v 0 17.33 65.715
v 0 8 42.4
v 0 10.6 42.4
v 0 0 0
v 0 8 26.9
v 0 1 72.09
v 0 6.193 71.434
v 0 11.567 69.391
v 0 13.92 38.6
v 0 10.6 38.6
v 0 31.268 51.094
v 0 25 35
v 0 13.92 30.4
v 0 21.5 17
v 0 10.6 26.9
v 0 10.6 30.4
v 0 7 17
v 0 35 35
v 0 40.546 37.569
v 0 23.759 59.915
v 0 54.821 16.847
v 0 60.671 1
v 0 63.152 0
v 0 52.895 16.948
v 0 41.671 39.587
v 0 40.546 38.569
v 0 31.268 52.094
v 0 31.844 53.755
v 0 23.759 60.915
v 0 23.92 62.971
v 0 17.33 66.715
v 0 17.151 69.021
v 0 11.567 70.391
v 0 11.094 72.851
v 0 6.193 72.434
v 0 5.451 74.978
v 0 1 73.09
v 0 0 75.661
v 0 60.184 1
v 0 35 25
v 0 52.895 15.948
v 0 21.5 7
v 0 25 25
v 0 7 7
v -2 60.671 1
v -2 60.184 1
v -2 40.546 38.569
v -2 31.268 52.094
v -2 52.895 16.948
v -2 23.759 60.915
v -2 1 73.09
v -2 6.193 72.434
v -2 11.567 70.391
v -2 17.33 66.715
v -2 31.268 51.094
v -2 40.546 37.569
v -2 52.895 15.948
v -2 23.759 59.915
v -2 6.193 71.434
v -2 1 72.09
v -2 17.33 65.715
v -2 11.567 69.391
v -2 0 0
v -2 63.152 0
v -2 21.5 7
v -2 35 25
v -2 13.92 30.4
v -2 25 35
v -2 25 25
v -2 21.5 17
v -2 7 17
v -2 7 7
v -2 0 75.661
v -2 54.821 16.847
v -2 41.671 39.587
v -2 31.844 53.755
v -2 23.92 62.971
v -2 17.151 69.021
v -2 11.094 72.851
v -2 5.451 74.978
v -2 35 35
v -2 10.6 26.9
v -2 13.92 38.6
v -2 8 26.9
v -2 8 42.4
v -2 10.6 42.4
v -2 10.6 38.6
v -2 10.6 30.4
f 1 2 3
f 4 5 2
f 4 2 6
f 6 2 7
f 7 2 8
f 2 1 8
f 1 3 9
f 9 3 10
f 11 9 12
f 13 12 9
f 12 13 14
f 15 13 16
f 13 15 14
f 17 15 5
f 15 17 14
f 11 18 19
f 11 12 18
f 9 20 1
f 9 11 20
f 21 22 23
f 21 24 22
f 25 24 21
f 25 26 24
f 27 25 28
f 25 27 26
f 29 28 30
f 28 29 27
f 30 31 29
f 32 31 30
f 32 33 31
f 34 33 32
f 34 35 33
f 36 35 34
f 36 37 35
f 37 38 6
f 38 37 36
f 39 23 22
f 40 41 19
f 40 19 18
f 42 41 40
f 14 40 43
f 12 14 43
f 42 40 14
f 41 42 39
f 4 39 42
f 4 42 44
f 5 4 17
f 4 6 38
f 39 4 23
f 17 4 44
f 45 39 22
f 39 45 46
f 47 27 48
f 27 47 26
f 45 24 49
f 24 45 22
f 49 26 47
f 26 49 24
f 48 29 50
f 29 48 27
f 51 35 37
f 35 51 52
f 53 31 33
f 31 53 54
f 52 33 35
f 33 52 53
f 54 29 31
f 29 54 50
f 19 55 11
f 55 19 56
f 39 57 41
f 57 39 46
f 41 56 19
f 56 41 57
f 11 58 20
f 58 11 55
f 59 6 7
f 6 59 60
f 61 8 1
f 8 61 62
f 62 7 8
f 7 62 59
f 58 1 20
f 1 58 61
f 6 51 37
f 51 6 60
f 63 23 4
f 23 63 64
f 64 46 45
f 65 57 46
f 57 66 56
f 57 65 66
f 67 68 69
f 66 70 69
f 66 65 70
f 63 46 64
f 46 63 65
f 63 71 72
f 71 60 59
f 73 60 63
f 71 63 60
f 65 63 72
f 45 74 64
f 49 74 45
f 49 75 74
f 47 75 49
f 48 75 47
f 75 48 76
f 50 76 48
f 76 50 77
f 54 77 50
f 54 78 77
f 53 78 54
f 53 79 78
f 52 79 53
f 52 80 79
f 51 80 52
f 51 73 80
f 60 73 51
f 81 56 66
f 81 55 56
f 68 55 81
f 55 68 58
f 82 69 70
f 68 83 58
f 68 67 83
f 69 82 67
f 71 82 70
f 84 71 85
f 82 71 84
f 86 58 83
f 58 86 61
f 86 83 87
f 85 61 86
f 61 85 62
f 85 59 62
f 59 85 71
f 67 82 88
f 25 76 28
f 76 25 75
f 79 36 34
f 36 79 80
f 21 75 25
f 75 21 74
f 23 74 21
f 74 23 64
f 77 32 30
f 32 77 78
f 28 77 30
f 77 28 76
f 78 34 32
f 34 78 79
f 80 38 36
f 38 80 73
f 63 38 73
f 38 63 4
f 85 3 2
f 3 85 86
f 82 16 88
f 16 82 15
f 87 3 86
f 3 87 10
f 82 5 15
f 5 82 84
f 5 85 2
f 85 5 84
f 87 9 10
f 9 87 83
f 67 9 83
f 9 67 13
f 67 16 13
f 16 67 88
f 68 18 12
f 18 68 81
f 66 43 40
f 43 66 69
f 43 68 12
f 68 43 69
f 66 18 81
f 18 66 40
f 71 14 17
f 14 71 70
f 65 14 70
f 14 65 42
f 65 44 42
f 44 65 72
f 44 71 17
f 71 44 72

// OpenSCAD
// file: ../../lightning-bolt.scad
// Module names are of the form poly_<inkscape-path-id>().  As a result,
// you can associate a polygon in this OpenSCAD program with the corresponding
// SVG element in the Inkscape document by looking for the XML element with
// the attribute id="inkscape-path-id".

// fudge value is used to ensure that subtracted solids are a tad taller
// in the z dimension than the polygon being subtracted from.  This helps
// keep the resulting .stl file manifold.
fudge = 0.1;

module poly_Selection(h)
{
  scale([25.4/90, -25.4/90, 1]) union()
  {
    difference()
    {
       linear_extrude(height=h)
         polygon([[-4.148906,-161.604375],[29.851094,-161.604375],[89.851094,-161.604375],[93.388594,-161.765625],[96.851094,-161.604375],[99.052539,-160.861992],[100.810781,-159.788437],[102.146680,-158.426602],[103.081094,-156.819375],[103.634883,-155.009648],[103.828906,-153.040312],[103.684023,-150.954258],[103.221094,-148.794375],[102.277969,-146.302969],[100.798594,-143.351250],[96.816094,-136.696875],[88.851094,-124.794375],[55.521094,-74.794375],[52.930781,-71.123125],[49.723594,-66.176875],[48.375586,-63.594766],[47.457656,-61.136875],[47.164570,-58.950859],[47.691094,-57.184375],[49.468281,-55.523281],[51.843594,-54.455625],[56.851094,-53.384375],[81.851094,-52.794375],[85.930117,-52.456934],[89.547656,-51.555469],[92.689414,-50.098770],[95.341094,-48.095625],[97.488398,-45.554824],[99.117031,-42.485156],[100.212695,-38.895410],[100.761094,-34.794375],[100.747676,-30.961406],[100.226250,-27.654375],[99.240059,-24.763594],[97.832344,-22.179375],[96.046348,-19.792031],[93.925313,-17.491875],[88.851094,-12.714375],[60.861094,11.495625],[22.681094,53.165625],[-2.148906,76.215625],[-46.148906,121.205625],[-78.148906,152.375625],[-81.104219,155.211094],[-84.541406,158.319375],[-88.282344,160.803281],[-90.211055,161.530723],[-92.148906,161.765625],[-94.372402,161.407539],[-95.966250,160.530312],[-97.010488,159.238242],[-97.585156,157.635625],[-97.770293,155.826758],[-97.645937,153.915937],[-96.788906,150.205625],[-93.919844,142.465000],[-90.396406,134.510625],[-82.908906,119.205625],[-44.898906,43.205625],[-36.378906,25.205625],[-35.345781,22.782813],[-34.608906,20.343125],[-34.494531,17.862187],[-35.328906,15.315625],[-36.170610,14.127329],[-37.254570,13.148945],[-40.029844,11.748437],[-43.415898,10.967148],[-47.173906,10.658125],[-54.850469,10.869062],[-61.148906,11.205625],[-84.148906,11.205625],[-89.537187,11.162031],[-95.852656,10.511875],[-98.777129,9.708848],[-101.236250,8.453594],[-102.997637,6.645918],[-103.544060,5.503611],[-103.828906,4.185625],[-103.551094,0.976250],[-102.416406,-2.454375],[-99.458906,-8.794375],[-87.568906,-34.794375],[-45.288906,-129.794375],[-36.368906,-149.794375],[-33.801406,-154.788125],[-32.116406,-157.068906],[-30.048906,-158.784375],[-27.055781,-159.877500],[-23.293906,-160.479375],[-16.148906,-160.794375],[-10.167656,-160.861875],[-4.148906,-161.604375]]);
       translate([0, 0, -fudge])
         linear_extrude(height=h+2*fudge)
           polygon([[-2.148906,-144.654375],[-11.515156,-143.585625],[-16.058125,-142.526719],[-18.163730,-141.618809],[-20.108906,-140.364375],[-22.284258,-138.120078],[-24.525469,-134.897500],[-28.966406,-126.644375],[-32.953594,-117.858750],[-36.008906,-110.794375],[-65.008906,-46.794375],[-77.008906,-20.794375],[-77.717656,-18.100625],[-78.111406,-14.919375],[-77.953906,-11.783125],[-77.594609,-10.398281],[-77.008906,-9.224375],[-75.949375,-8.181387],[-74.555156,-7.474844],[-71.118906,-6.800625],[-64.148906,-6.514375],[-25.148906,-5.794375],[-20.262344,-5.639844],[-17.686992,-5.320645],[-15.208906,-4.723125],[-12.967070,-3.759512],[-11.100469,-2.342031],[-9.748086,-0.382910],[-9.048906,2.205625],[-9.148008,3.888379],[-9.686094,6.060156],[-11.633906,11.216875],[-15.898906,20.205625],[-36.368906,61.205625],[-43.578906,78.205625],[-43.665156,80.649063],[-43.016406,82.798125],[-42.384766,83.660898],[-41.531406,84.328437],[-40.443672,84.760195],[-39.108906,84.915625],[-36.457187,84.283281],[-33.772656,82.729375],[-29.148906,78.915625],[-9.148906,59.205625],[54.851094,-4.794375],[69.851094,-20.794375],[73.011094,-24.875625],[74.145781,-27.247656],[74.401094,-29.684375],[74.109907,-30.624995],[73.529883,-31.442773],[71.644531,-32.745312],[69.027461,-33.663008],[65.961094,-34.266875],[59.610156,-34.817188],[54.851094,-34.964375],[26.851094,-34.964375],[24.944707,-35.570820],[23.266250,-36.420312],[21.835527,-37.498086],[20.672344,-38.789375],[19.796504,-40.279414],[19.227813,-41.953437],[18.986074,-43.796680],[19.091094,-45.794375],[19.653008,-47.792656],[20.785156,-50.341250],[24.138594,-56.346875],[30.851094,-66.794375],[56.801094,-107.794375],[71.091094,-131.794375],[72.260937,-134.232188],[73.242344,-137.009375],[73.438125,-139.779062],[73.054785,-141.052695],[72.251094,-142.194375],[71.029297,-142.931309],[69.104844,-143.516719],[64.008594,-144.290625],[58.683594,-144.631406],[54.851094,-144.654375],[-2.148906,-144.654375]]);
    }
  }
}

module lightningBolt(height = 1,
                     showBackground = false)
{
    scaleFactor = 0.35;
    scale([scaleFactor, 
          scaleFactor + 0.0, 
           1])
    poly_Selection(height);

    if(showBackground)
    {
        color("green")
        cube([20.6, 32, height], center = true);
    }    
}
// file: ../../O.scad
// Module names are of the form poly_<inkscape-path-id>().  As a result,
// you can associate a polygon in this OpenSCAD program with the corresponding
// SVG element in the Inkscape document by looking for the XML element with
// the attribute id="inkscape-path-id".

// fudge value is used to ensure that subtracted solids are a tad taller
// in the z dimension than the polygon being subtracted from.  This helps
// keep the resulting .stl file manifold.
fudge = 0.1;

module poly_Selection(h)
{
  scale([25.4/90, -25.4/90, 1]) union()
  {
    difference()
    {
       linear_extrude(height=h)
         polygon([[-5.844834,-69.112233],[-0.738835,-69.479330],[4.212842,-69.319479],[8.996970,-68.659091],[13.600322,-67.524576],[18.009670,-65.942347],[22.211787,-63.938815],[26.193445,-61.540389],[29.941416,-58.773483],[33.442473,-55.664506],[36.683389,-52.239869],[39.650935,-48.525985],[42.331885,-44.549264],[44.713010,-40.336117],[46.781084,-35.912955],[48.522878,-31.306190],[49.925166,-26.542233],[51.431885,-20.040983],[52.821416,-12.587233],[53.740322,-5.110983],[53.835166,1.457767],[53.077295,9.616439],[51.953447,17.577767],[50.332021,25.297220],[48.081416,32.730267],[45.070029,39.832377],[41.166260,46.559017],[36.238506,52.865658],[33.349509,55.847562],[30.155166,58.707767],[24.473916,63.186517],[21.457510,65.101986],[18.155166,66.697767],[12.715166,68.386205],[7.297666,69.217767],[1.808916,69.479330],[-3.844834,69.457767],[-7.048369,69.233744],[-10.537490,68.661205],[-17.868584,66.617767],[-24.830303,63.621830],[-27.857705,61.858666],[-30.414834,59.967767],[-33.333330,57.119623],[-36.231553,53.639486],[-39.042354,49.687552],[-41.698584,45.424017],[-46.278740,36.602924],[-49.434834,28.457767],[-51.859893,18.885170],[-53.340303,9.094486],[-53.835166,-0.794869],[-53.303584,-10.663483],[-51.704658,-20.391940],[-48.997490,-29.860826],[-47.215535,-34.460614],[-45.141182,-38.950729],[-42.769319,-43.316244],[-40.094834,-47.542233],[-36.123740,-52.805670],[-31.598584,-57.609733],[-26.509053,-61.787545],[-20.844834,-65.172233],[-17.163740,-66.690670],[-13.491084,-67.727233],[-5.844834,-69.112233]]);
       translate([0, 0, -fudge])
         linear_extrude(height=h+2*fudge)
           polygon([[-5.934834,-61.092233],[-9.446100,-60.339632],[-12.775825,-59.318771],[-18.899951,-56.525162],[-24.325815,-52.817198],[-29.072021,-48.300670],[-33.157173,-43.081368],[-36.599873,-37.265084],[-39.418726,-30.957609],[-41.632334,-24.264733],[-43.259302,-17.292247],[-44.318232,-10.145944],[-44.827729,-2.931613],[-44.806396,4.244955],[-44.272837,11.277968],[-43.245654,18.061635],[-41.743452,24.490165],[-39.784834,30.457767],[-37.048818,36.790424],[-33.822959,42.630892],[-30.065537,47.874174],[-25.734834,52.415267],[-20.789131,56.149174],[-15.186709,58.970892],[-12.126191,60.006869],[-8.885850,60.775424],[-5.460469,61.263431],[-1.844834,61.457767],[2.370159,61.351688],[6.336201,60.937728],[10.062390,60.224178],[13.557822,59.219330],[16.831594,57.931473],[19.892803,56.368900],[22.750544,54.539901],[25.413916,52.452767],[30.193936,47.537260],[34.305635,41.688705],[37.821787,34.973431],[40.815166,27.457767],[42.547073,21.639213],[43.836670,15.417767],[44.669148,8.887885],[45.029697,2.144017],[44.903508,-4.719381],[44.275771,-11.607858],[43.131677,-18.426959],[41.456416,-25.082233],[39.235178,-31.479225],[36.453154,-37.523483],[33.095535,-43.120553],[29.147510,-48.175983],[24.594270,-52.595319],[19.421006,-56.284108],[13.612908,-59.147897],[7.155166,-61.092233],[4.052354,-61.457858],[0.662666,-61.504733],[-5.934834,-61.092233]]);
    }
  }
}

module O(height = 1, showBackground = false)
{
    scaleFactor = 0.82;
    scale([scaleFactor, 
          scaleFactor + 0.02, 
           1])
    poly_Selection(height);

    if(showBackground)
    {
        color("green")
        cube([25, 33, height], center = true);
    }    
}
// file: ../../I.scad
module I(height = 3, showBackground = false)
{
    cube([3, 30, height], center = true);

    if(showBackground)
    {
        color("green")
        cube([3, 30, 1], center = true);
    }
}
// file: ../../G.scad
// Module names are of the form poly_<inkscape-path-id>().  As a result,
// you can associate a polygon in this OpenSCAD program with the corresponding
// SVG element in the Inkscape document by looking for the XML element with
// the attribute id="inkscape-path-id".

// fudge value is used to ensure that subtracted solids are a tad taller
// in the z dimension than the polygon being subtracted from.  This helps
// keep the resulting .stl file manifold.
fudge = 0.1;

module poly_Selection(h)
{
  scale([25.4/90, -25.4/90, 1]) union()
  {
    linear_extrude(height=h)
      polygon([[10.951875,1.338643],[53.951875,1.338643],[57.923281,1.739268],[59.154121,2.231611],[59.983125,2.976143],[60.486348,4.015986],[60.739844,5.394268],[60.801875,9.338643],[60.801875,35.338643],[60.948125,38.736143],[60.801875,42.058643],[59.783262,44.373174],[58.236719,46.904268],[54.065625,52.151143],[49.300156,56.869268],[44.951875,60.128643],[30.951875,66.568643],[26.615156,68.524736],[22.733125,70.007393],[18.710469,70.963174],[13.951875,71.338643],[6.211973,71.338447],[-0.916094,71.050205],[-7.561113,70.334932],[-13.851875,69.053643],[-19.917168,67.067354],[-25.885781,64.237080],[-31.886504,60.423838],[-38.048125,55.488643],[-41.478125,52.521143],[-44.668125,49.298643],[-48.164844,44.410518],[-51.236875,38.836143],[-53.849531,33.003018],[-55.968125,27.338643],[-57.492969,21.081611],[-59.174375,11.797393],[-60.497656,2.533799],[-60.948125,-3.661357],[-60.357676,-10.182725],[-59.158906,-16.957920],[-57.366934,-23.816084],[-54.996875,-30.586357],[-52.063848,-37.097881],[-48.582969,-43.179795],[-44.569355,-48.661240],[-40.038125,-53.371357],[-35.962773,-56.714016],[-31.604531,-59.741221],[-26.997617,-62.442439],[-22.176250,-64.807139],[-17.174648,-66.824788],[-12.027031,-68.484854],[-6.767617,-69.776804],[-1.430625,-70.690107],[3.949727,-71.214231],[9.339219,-71.338643],[14.703633,-71.052810],[20.008750,-70.346201],[25.220352,-69.208284],[30.304219,-67.628525],[35.226133,-65.596394],[39.951875,-63.101357],[45.734375,-59.543857],[50.459375,-55.948857],[52.520234,-53.904092],[54.430625,-51.570107],[56.228516,-48.853623],[57.951875,-45.661357],[54.090625,-43.623857],[51.951406,-42.820732],[50.041875,-42.651357],[49.003926,-42.987490],[48.004531,-43.617295],[46.118125,-45.466357],[42.771875,-49.481357],[40.214844,-51.641357],[37.180625,-53.673857],[30.951875,-56.951357],[27.252129,-58.449600],[23.777031,-59.539795],[17.165625,-60.723857],[10.447344,-60.959170],[2.951875,-60.701357],[-5.044375,-60.340107],[-8.575156,-59.679014],[-13.048125,-58.201357],[-18.547187,-55.967451],[-23.980625,-53.342607],[-29.087813,-50.187139],[-33.608125,-46.361357],[-36.288733,-43.421499],[-38.703457,-40.332959],[-42.767656,-33.761045],[-45.865527,-26.748037],[-48.061875,-19.396357],[-49.421504,-11.808428],[-50.009219,-4.086670],[-49.889824,3.666494],[-49.128125,11.348643],[-47.870469,19.322861],[-46.281875,25.649893],[-43.768906,31.678799],[-39.738125,38.758643],[-37.801875,42.329893],[-36.811719,43.920986],[-35.198125,45.878643],[-30.107051,50.708896],[-24.792031,54.432549],[-19.250371,57.188936],[-13.479375,59.117393],[-7.476348,60.357256],[-1.238594,61.047861],[5.236582,61.328545],[11.951875,61.338643],[16.493691,61.092568],[20.902031,60.463174],[25.166230,59.444951],[29.275625,58.032393],[33.219551,56.219990],[36.987344,54.002236],[40.568340,51.373623],[43.951875,48.328643],[46.745625,45.482080],[48.571875,43.046143],[49.588125,40.253955],[49.951875,36.338643],[50.129531,31.032861],[50.165625,23.922393],[49.960957,20.366279],[49.517344,17.170049],[48.766934,14.604053],[47.641875,12.938643],[45.724375,11.892705],[43.491875,11.433643],[38.951875,11.338643],[10.951875,11.338643],[10.951875,1.338643]]);
  }
}

module G(height = 1,
         showBackground = false)
{
    scaleFactor = 0.698;
    scale([scaleFactor, scaleFactor + 0.042, 1])
    poly_Selection(height);

    if(showBackground)
    {
        color("green")
        cube([24.1, 30, height], center = true);
    }    
}
// file: ../../E.scad
// Module names are of the form poly_<inkscape-path-id>().  As a result,
// you can associate a polygon in this OpenSCAD program with the corresponding
// SVG element in the Inkscape document by looking for the XML element with
// the attribute id="inkscape-path-id".

// fudge value is used to ensure that subtracted solids are a tad taller
// in the z dimension than the polygon being subtracted from.  This helps
// keep the resulting .stl file manifold.
fudge = 0.1;

module poly_Selection(h)
{
  scale([25.4/90, -25.4/90, 1]) union()
  {
    linear_extrude(height=h)
      polygon([[-55.000000,-70.000000],[55.000000,-70.000000],[55.000000,-60.000000],[-43.000000,-60.000000],[-43.000000,-9.000000],[38.000000,-9.000000],[37.985000,-4.623750],[37.696250,-2.316094],[36.980000,-0.600000],[35.692461,0.200879],[33.523438,0.725781],[27.612500,1.156250],[17.000000,1.000000],[-43.000000,1.000000],[-43.000000,52.000000],[-42.823379,54.683281],[-42.389531,56.686875],[-41.673730,58.110156],[-40.651250,59.052500],[-39.297363,59.613281],[-37.587344,59.891875],[-33.000000,60.000000],[55.000000,60.000000],[55.000000,70.000000],[-55.000000,70.000000],[-55.000000,-70.000000]]);
  }
}

module E(height = 1)
{
    scaleFactor = 0.6456;
    scale([scaleFactor, scaleFactor + 0.107, 1])
    poly_Selection(height);

    if(showBackground)
    {
        color("green")
        cube([20.2, 30, height], center = true);
    }    
}

//E(1);
// file: ../../D.scad
// Module names are of the form poly_<inkscape-path-id>().  As a result,
// you can associate a polygon in this OpenSCAD program with the corresponding
// SVG element in the Inkscape document by looking for the XML element with
// the attribute id="inkscape-path-id".

// fudge value is used to ensure that subtracted solids are a tad taller
// in the z dimension than the polygon being subtracted from.  This helps
// keep the resulting .stl file manifold.
fudge = 0.1;

module poly_Selection(h)
{
  scale([25.4/90, -25.4/90, 1]) union()
  {
    difference()
    {
       linear_extrude(height=h)
         polygon([[-138.674375,-159.195000],[-112.964375,-159.975000],[-68.964375,-159.975000],[1.035625,-159.975000],[12.791719,-159.185625],[27.801875,-157.185000],[42.678906,-154.479375],[49.009004,-153.020391],[54.035625,-151.575000],[59.267969,-149.587949],[64.338125,-147.232344],[69.258281,-144.561504],[74.040625,-141.628750],[83.240625,-135.190781],[92.035625,-128.345000],[95.488125,-125.778750],[98.865625,-122.875000],[106.825625,-112.975000],[120.515625,-93.975000],[124.806563,-85.673164],[128.728125,-76.535313],[132.218437,-66.790430],[135.215625,-56.667500],[137.657812,-46.395508],[139.483125,-36.203438],[140.629687,-26.320273],[141.035625,-16.975000],[141.035625,18.025000],[140.242500,27.404531],[138.425625,40.081250],[136.181250,52.729844],[134.105625,62.025000],[131.712031,68.633906],[127.564375,78.716250],[123.174844,88.702969],[120.055625,95.025000],[109.035625,110.025000],[105.698906,114.950000],[102.824375,119.935000],[100.022969,124.515000],[96.905625,128.225000],[92.232500,132.096406],[85.853125,136.831250],[79.282500,141.200469],[74.035625,143.975000],[65.035625,145.865000],[58.035625,149.265000],[42.035625,153.855000],[32.035625,155.305000],[21.599531,156.641250],[13.129375,157.467500],[4.612344,157.892500],[-5.964375,158.025000],[-22.964375,159.025000],[-71.964375,159.025000],[-83.964375,159.975000],[-101.964375,159.975000],[-116.964375,159.025000],[-133.964375,159.025000],[-137.179375,158.847500],[-138.714688,158.386562],[-139.944375,157.425000],[-140.631094,155.877813],[-140.923125,153.875000],[-140.964375,150.025000],[-140.964375,-81.975000],[-140.964375,-138.975000],[-141.035625,-148.698750],[-140.884219,-154.273594],[-140.394375,-157.545000],[-139.433125,-158.760000],[-138.674375,-159.195000]]);
       translate([0, 0, -fudge])
         linear_extrude(height=h+2*fudge)
           polygon([[-113.944375,-141.835000],[-116.077363,-140.651699],[-117.725781,-139.313594],[-118.952559,-137.819629],[-119.820625,-136.168750],[-120.732344,-132.392031],[-120.964375,-127.975000],[-120.964375,-76.975000],[-120.964375,91.025000],[-120.964375,126.025000],[-120.910938,129.017031],[-120.611875,132.103750],[-119.814063,135.046094],[-118.264375,137.605000],[-116.746953,138.960176],[-114.918750,140.007031],[-110.654375,141.333750],[-106.120000,141.901094],[-101.964375,142.025000],[-10.964375,142.025000],[-6.542500,141.911563],[-4.006875,141.590000],[2.035625,140.345000],[12.035625,139.305000],[32.035625,137.685000],[39.086562,135.456250],[50.223125,131.240000],[61.265938,126.716250],[68.035625,123.565000],[72.148750,120.803281],[76.813125,117.191250],[85.035625,109.985000],[91.435312,103.070938],[95.890625,96.747500],[99.618437,90.052812],[103.835625,82.025000],[109.685625,70.708750],[112.467188,64.546719],[114.425625,59.025000],[117.495625,41.025000],[120.286875,25.315000],[121.518906,16.744688],[122.035625,10.025000],[122.035625,-11.975000],[121.543125,-18.151562],[120.368125,-26.295000],[117.695625,-40.975000],[114.445625,-58.975000],[112.575664,-64.567617],[109.955937,-70.903437],[106.751680,-77.686914],[103.128125,-84.622500],[99.250508,-91.414648],[95.284062,-97.767812],[91.394023,-103.386445],[87.745625,-107.975000],[84.119531,-111.698125],[80.314375,-114.907500],[72.035625,-120.805000],[65.931250,-124.894062],[59.605625,-128.707500],[52.995000,-131.962187],[46.035625,-134.375000],[39.035625,-135.765000],[31.035625,-138.595000],[23.481406,-139.695312],[13.786875,-140.430000],[-3.964375,-140.975000],[-20.964375,-141.835000],[-57.964375,-141.835000],[-113.944375,-141.835000]]);
    }
  }
}

module D(h, showBackground = false)
{
    scaleFactor = 0.305;
    scale([scaleFactor, scaleFactor + 0.03, 1])
    poly_Selection(h);

    if(showBackground)
    {
        color("green")
        cube([24.6, 30, 1], center = true);
    }
}

// D(1);
// file: ../../../../../shapes/geometry/arc/projection/parabola.scad
// This was inspired by the post found here:
//	http://forum.openscad.org/Parabolic-tube-tp28894p28897.html

module parabolaProjection(d1=20, h = 30)
{
//    projection(cut=false)
    projection(cut=true)
        rotate([0, 70, 0])
            cylinder(d1=d1, d2=0, h = h);
}

module parabola(d1=20, zExtrude = 50, h = 30)
{
//    linear_extrude(zExtrude)
    difference()
    {
        linear_extrude(zExtrude)
        parabolaProjection(d1=d1, h = h);

        translate([-0.9, 0, -1.0])
        linear_extrude(zExtrude + 2)
        parabolaProjection(d1=d1, h = h);

    //           parabolaProjection();
    }
}
// file: ../../faceplate/letters-symbols-faceplate.scad
use <../D.scad>;
use <../E.scad>;
use <../G.scad>;
use <../I.scad>;
use <../O.scad>;
use <../lightning-bolt.scad>;

LETTER_D = 68;
LETTER_E = 69;
LETTER_G = 71;
LETTER_I = 73;
LETTER_O = 79;

SYMBOL_LIGHTNING_BOLT = 33;

STANDARD_LETTER_HEIGHT = 33; // see the O.scad

module lettersSymbolsFaceplate(horizontalPadding = 10,

                               slot1 = SYMBOL_LIGHTNING_BOLT,
                               slotWidth1 = 20.6,

                               slot2 = LETTER_D,
                               slotWidth2 = 24.6,

                               slot3 = LETTER_I,
                               slotWidth3 = 3,

                               slot4 = LETTER_E,
                               slotWidth4 = 20.2,

                               slot5 = LETTER_G,
                               slotWidth5 = 24.1,

                               slot6 = LETTER_O,
                               slotWidth6 = 25,

                               slot7 = SYMBOL_LIGHTNING_BOLT,
                               slotWidth7 = 20.6,                               

                               verticalPadding = 15,
                               zLength = 2)
{
//    difference()
    union()
    {
        cubeLengthX = horizontalPadding + 
                      slotWidth1 +
                      horizontalPadding + 
                      slotWidth2 +
                      horizontalPadding + 
                      slotWidth3 +
                      horizontalPadding + 
                      slotWidth4 +
                      horizontalPadding +
                      slotWidth5 +
                      horizontalPadding +
                      slotWidth6 +
                      horizontalPadding
                      + 40;

echo("x length: ", cubeLengthX);

        cubeLengthY = verticalPadding + 
                      STANDARD_LETTER_HEIGHT +
                      verticalPadding;                              

        color("green")
        cube(
//             center = true,
             size = [cubeLengthX, cubeLengthY, zLength]);

        letter1TranslateX = horizontalPadding + slotWidth1 / 2.0;
        letterSymbol(letterTranslateX=letter1TranslateX, 
                     slot=slot1, 
                     slotWidth=slotWidth1,
                     verticalPadding = verticalPadding);

        letter2TranslateX = letter1TranslateX + horizontalPadding + slotWidth2 ;
        letterSymbol(letterTranslateX=letter2TranslateX, 
                     slot=slot2, 
                     slotWidth=slotWidth2,
                     verticalPadding = verticalPadding);

        letter3TranslateX = letter2TranslateX +  slotWidth2 / 2.0 + horizontalPadding + slotWidth3;
        letterSymbol(letterTranslateX=letter3TranslateX, 
                     slot=slot3, 
                     slotWidth=slotWidth3,
                     verticalPadding = verticalPadding);

        letter4TranslateX = letter3TranslateX 
                                    + horizontalPadding * 2
                                    + slotWidth3;
        letterSymbol(letterTranslateX=letter4TranslateX, 
                     slot=slot4, 
                     slotWidth=slotWidth4,
                     verticalPadding = verticalPadding);

        letter5TranslateX = letter4TranslateX
                                + horizontalPadding 
                                + slotWidth4;
        letterSymbol(letterTranslateX=letter5TranslateX, 
                     slot=slot5,
                     slotWidth=slotWidth5,
                     verticalPadding = verticalPadding);

        letter6TranslateX = letter5TranslateX
                                + horizontalPadding 
                                + slotWidth5;
        letterSymbol(letterTranslateX=letter6TranslateX, 
                     slot=slot6,
                     slotWidth=slotWidth5,
                     verticalPadding = verticalPadding);

        letter7TranslateX = letter6TranslateX
                                + horizontalPadding 
                                + slotWidth6;
        letterSymbol(letterTranslateX=letter7TranslateX, 
                     slot=slot7,
                     slotWidth=slotWidth7,
                     verticalPadding = verticalPadding);                     
    }
}

module letterSymbol(slot, slotWidth, letterTranslateX,
                    verticalPadding)
{
    letterLengthZ = 10;

//echo("letterTranslateX: ", letterTranslateX);

    letterTranslateY = verticalPadding  + STANDARD_LETTER_HEIGHT / 2.0;

    translate([letterTranslateX, letterTranslateY, -2.01])
    if(slot == SYMBOL_LIGHTNING_BOLT)
    {
        lightningBolt(height = letterLengthZ);
    }
    else if(slot == LETTER_D)
    {
        D(h = letterLengthZ);
    }
    else if(slot == LETTER_E)
    {
        E(height = letterLengthZ);
    }
    else if(slot == LETTER_G)
    {
        G(height = letterLengthZ);
    }
    else if(slot == LETTER_I)
    {
        I(height = letterLengthZ);
    }
    else if(slot == LETTER_O)
    {
        O(height = letterLengthZ);
    }
    else
    {
        echo("no slot id found for: ", slot);
        cube(center = true,
             size = [10, 10, 20]);
    }
}
// file: ../assembled/assembled-sign.scad
use <../../faceplate/letters-symbols-faceplate.scad>

use <../../../../../shapes/geometry/arc/projection/parabola.scad>


//lettersSymbolsFaceplate();

sidePlate();

module sidePlate()
{
    difference()
    {
        
        rotate([0, -90, 0])
        linear_extrude(2.0)
        parabolaProjection(d1 = 127,
                h = 120);

        cubeLengthX = 5;
        cubeLengthY = 70;
        cubeTranslateX = -cubeLengthX / 2.0;
        cubeTranslateY = -cubeLengthY;
        color("purple")
        translate([cubeTranslateX, cubeTranslateY, 0])
        cube(size = [cubeLengthX, cubeLengthY, 150]);                
//    }

    color("red")
    translate([0, 1, 1])
    rotate([0, -90, 0])
    scale([1,1,1])
    sidePlateCutout();
}    
}


module sidePlateCutout()
{
    difference()
    {
        d1 = 120;
        h = 115;
        linear_extrude(2.5)
        parabolaProjection(d1 = d1,
                h = h);

        
        translate([-1,0,0])
        linear_extrude(4)
        parabolaProjection(d1 = d1,
                h = h);

        cutoutLengthX = 5;
        cutoutLengthY = 65;
        cutoutTranslateX = -cutoutLengthX / 2.0;
        cutoutTranslateY = -cutoutLengthY;
        color("black")
        rotate([0, 90, 0])
        translate([cutoutTranslateX, cutoutTranslateY, -2])
        cube(size = [cutoutLengthX, cutoutLengthY, 145]);
    }    
}
// main file
use <../assembled/assembled-sign.scad>

controlPanelSidePlate();

module controlPanelSidePlate()
{
    difference()
    {
        sidePlate();

        trinketCutout();

        potentiometerCutout();

        switchCutout();
    }
}

module trinketCutout()
{
    // this needs to be 8mm off of the wooden platform
    zTranslate = 8;

    //  and centered on the horizontal plane
    color("purple")
    translate([34, 8, 34])
    rotate([0, 90, 90])
    import("/home/luke/Distribute/world/adafruit/pro-trinket/2010-ProTrinket-3V.3mf");

//    color("green")
    color("purple")
    translate([-4, 8, 26.9])
    cube([10, 2.6, 15.5]);

//    color("pink")
    color("purple")
    translate([-4, 10.5, 30.4])
    cube([10, 3.42, 8.2]);
}

module potentiometerCutout()
{
    xyLenght = 10.0;

    color("blue")
    translate([-4, 25.0, 25.0])
    cube([10, xyLenght, xyLenght]);
}

module switchCutout()
{
    color("black")
    translate([-4, 7.0, 7.0])
    cube([10, 14.5, 10.0]);
}
